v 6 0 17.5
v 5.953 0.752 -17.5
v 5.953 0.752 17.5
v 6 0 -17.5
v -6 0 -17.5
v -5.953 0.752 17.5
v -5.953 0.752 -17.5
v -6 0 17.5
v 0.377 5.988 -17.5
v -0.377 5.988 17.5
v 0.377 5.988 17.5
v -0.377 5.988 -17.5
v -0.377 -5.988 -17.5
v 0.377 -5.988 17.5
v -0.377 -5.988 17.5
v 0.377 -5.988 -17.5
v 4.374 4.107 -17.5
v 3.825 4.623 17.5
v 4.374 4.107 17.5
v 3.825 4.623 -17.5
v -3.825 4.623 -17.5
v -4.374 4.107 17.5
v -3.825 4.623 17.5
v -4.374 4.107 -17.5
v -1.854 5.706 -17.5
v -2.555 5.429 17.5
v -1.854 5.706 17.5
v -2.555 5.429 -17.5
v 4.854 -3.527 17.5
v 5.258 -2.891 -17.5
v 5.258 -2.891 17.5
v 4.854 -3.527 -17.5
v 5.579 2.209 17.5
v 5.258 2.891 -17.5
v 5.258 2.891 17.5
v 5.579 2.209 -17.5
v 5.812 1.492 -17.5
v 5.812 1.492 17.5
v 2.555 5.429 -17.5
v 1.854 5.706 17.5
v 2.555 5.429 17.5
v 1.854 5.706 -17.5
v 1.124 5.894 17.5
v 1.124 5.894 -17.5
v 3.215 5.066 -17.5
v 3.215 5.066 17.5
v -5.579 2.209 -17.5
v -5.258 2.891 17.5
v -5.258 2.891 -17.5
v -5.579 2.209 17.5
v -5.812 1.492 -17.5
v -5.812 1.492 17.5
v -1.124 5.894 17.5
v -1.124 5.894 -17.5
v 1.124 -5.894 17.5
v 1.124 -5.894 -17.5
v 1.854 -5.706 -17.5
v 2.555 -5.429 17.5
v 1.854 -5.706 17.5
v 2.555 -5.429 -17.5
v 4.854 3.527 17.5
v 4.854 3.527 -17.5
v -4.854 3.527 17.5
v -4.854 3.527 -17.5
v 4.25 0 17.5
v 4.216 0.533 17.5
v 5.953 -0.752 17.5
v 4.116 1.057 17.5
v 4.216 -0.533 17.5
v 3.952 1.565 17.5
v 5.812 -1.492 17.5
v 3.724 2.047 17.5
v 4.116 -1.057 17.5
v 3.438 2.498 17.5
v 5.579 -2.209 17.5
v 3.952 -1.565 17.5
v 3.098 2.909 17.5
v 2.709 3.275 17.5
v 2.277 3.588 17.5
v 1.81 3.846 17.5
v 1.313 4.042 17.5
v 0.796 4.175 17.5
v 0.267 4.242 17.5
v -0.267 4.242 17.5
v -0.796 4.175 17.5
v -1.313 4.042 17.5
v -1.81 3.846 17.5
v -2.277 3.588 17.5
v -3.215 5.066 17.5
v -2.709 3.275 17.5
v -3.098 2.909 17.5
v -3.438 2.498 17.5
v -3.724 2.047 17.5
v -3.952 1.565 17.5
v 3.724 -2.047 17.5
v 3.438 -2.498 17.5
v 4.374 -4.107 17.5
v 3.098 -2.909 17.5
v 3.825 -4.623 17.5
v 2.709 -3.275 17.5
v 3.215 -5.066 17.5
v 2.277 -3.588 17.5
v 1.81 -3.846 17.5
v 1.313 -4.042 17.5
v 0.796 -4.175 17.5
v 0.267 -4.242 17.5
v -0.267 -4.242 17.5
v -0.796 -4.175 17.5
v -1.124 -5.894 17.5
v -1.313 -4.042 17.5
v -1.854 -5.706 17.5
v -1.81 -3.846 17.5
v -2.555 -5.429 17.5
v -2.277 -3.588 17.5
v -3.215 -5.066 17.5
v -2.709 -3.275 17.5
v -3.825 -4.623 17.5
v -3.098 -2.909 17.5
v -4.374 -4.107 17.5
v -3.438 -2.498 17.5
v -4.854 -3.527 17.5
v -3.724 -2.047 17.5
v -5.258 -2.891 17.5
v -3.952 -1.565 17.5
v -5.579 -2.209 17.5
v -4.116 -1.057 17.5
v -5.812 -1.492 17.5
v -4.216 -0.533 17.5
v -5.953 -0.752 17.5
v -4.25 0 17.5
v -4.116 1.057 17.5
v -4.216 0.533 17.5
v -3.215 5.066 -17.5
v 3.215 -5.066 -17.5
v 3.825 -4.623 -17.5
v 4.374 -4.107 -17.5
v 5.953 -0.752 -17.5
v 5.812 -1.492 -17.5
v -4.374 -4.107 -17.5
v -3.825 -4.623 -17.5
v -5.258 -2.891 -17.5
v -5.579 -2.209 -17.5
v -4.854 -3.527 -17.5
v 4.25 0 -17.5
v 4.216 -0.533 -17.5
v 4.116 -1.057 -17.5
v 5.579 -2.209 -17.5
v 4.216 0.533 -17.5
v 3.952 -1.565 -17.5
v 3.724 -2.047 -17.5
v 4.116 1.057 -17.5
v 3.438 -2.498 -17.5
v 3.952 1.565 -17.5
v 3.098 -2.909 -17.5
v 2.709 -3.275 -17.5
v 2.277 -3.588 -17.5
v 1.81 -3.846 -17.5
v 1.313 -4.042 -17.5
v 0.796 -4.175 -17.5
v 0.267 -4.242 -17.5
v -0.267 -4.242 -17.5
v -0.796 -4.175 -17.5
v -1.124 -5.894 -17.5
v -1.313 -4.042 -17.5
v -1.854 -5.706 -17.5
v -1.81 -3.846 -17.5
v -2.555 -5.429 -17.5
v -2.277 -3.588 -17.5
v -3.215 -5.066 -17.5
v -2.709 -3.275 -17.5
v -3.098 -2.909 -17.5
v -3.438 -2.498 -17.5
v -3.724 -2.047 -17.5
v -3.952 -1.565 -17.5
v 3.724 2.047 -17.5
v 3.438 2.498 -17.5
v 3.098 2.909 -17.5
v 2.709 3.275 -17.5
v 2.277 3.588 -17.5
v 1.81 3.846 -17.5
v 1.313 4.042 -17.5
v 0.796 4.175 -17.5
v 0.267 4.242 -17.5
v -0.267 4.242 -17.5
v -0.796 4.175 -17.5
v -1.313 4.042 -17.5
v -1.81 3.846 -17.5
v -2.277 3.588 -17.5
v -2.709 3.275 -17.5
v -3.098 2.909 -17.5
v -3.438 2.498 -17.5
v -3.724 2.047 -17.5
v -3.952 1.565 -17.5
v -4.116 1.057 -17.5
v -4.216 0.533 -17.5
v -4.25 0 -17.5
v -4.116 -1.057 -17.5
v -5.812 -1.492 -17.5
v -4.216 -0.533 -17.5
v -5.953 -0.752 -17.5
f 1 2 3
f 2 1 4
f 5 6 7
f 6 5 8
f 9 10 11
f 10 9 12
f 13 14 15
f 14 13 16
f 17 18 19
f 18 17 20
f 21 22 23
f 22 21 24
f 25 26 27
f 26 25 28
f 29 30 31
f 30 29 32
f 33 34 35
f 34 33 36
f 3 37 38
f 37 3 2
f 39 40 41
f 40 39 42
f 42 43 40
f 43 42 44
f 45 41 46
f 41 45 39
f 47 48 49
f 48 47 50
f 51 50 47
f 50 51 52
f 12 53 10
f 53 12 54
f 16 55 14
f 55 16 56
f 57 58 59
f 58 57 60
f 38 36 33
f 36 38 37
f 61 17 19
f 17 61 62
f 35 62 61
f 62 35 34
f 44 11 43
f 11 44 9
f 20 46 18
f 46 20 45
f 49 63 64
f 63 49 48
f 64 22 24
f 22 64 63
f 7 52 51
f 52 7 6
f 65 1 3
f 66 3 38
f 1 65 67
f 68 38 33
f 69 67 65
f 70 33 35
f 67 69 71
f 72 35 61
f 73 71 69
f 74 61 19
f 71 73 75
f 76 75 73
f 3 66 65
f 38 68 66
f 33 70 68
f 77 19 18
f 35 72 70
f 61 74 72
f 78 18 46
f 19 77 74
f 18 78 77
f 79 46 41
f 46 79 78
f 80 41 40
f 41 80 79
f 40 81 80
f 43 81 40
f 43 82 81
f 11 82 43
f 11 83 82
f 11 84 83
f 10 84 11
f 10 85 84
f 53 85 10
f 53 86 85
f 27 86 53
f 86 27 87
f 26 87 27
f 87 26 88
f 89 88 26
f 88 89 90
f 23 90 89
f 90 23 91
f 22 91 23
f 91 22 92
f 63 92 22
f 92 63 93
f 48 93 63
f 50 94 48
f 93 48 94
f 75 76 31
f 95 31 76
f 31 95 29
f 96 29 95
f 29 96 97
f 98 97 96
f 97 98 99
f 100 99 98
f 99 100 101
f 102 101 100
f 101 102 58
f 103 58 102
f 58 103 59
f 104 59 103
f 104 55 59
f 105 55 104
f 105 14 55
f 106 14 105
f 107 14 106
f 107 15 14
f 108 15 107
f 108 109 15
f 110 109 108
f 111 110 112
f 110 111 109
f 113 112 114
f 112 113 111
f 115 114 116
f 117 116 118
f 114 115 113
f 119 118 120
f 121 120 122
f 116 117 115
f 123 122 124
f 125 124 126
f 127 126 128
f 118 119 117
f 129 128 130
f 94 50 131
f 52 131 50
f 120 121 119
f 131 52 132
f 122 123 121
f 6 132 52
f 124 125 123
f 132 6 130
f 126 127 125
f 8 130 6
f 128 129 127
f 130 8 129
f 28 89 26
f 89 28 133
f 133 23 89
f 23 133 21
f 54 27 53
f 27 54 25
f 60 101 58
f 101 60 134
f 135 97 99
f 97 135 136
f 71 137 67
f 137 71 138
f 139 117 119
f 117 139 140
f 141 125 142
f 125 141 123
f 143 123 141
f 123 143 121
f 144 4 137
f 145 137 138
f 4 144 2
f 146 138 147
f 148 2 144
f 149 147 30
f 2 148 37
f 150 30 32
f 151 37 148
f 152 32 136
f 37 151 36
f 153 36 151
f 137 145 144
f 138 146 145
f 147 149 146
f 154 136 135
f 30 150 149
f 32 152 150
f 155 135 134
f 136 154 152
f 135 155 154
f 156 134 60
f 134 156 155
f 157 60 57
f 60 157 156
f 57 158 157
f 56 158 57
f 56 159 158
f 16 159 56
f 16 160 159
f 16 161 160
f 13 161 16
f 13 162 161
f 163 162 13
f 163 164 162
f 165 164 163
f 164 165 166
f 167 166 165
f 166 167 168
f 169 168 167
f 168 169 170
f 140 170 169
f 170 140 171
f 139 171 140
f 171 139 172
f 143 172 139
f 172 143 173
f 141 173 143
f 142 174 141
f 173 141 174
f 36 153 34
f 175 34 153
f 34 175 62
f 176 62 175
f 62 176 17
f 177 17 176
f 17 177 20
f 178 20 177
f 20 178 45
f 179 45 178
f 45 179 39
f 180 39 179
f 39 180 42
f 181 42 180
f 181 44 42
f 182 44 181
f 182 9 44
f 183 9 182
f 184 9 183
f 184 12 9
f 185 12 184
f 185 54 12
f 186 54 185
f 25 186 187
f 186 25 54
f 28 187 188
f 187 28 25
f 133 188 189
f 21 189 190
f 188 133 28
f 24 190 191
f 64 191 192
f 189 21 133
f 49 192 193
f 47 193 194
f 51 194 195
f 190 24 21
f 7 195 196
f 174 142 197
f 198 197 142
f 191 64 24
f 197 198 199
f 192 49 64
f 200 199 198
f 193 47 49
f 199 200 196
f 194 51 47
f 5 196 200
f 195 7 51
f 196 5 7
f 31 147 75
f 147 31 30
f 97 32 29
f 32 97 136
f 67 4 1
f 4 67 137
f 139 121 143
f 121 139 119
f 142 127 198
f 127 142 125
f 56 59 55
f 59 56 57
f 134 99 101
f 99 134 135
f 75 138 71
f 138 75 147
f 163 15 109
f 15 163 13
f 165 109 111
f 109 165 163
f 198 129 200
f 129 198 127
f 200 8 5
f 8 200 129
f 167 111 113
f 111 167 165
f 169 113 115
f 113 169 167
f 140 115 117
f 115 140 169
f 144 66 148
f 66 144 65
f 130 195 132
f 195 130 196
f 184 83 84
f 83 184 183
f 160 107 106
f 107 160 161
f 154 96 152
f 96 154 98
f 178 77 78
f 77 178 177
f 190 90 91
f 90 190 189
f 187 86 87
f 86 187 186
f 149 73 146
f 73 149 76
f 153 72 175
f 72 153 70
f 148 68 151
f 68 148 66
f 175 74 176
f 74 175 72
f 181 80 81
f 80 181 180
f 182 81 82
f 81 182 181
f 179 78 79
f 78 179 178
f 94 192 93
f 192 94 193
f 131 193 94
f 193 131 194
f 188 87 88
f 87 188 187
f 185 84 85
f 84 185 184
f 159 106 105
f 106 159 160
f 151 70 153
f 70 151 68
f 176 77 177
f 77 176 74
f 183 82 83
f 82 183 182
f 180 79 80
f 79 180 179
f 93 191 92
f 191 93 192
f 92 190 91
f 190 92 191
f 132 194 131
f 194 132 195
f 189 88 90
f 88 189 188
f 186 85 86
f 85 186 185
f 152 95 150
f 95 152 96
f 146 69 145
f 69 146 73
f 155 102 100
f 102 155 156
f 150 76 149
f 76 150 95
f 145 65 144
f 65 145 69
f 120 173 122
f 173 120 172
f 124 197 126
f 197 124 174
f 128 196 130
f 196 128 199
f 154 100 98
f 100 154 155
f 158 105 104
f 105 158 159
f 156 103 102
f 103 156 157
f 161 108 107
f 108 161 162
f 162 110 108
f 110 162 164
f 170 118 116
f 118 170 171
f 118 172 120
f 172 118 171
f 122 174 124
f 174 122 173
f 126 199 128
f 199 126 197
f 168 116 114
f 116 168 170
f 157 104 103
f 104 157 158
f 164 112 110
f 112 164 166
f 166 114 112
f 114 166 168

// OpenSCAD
$fn = 50;


difference() {
	union() {
		translate(v = [0, 0, -17.5000000000]) {
			cylinder(h = 35, r = 6.0000000000);
		}
	}
	union() {
		translate(v = [0, 0, -100.0000000000]) {
			cylinder(h = 200, r = 4.2500000000);
		}
	}
}
